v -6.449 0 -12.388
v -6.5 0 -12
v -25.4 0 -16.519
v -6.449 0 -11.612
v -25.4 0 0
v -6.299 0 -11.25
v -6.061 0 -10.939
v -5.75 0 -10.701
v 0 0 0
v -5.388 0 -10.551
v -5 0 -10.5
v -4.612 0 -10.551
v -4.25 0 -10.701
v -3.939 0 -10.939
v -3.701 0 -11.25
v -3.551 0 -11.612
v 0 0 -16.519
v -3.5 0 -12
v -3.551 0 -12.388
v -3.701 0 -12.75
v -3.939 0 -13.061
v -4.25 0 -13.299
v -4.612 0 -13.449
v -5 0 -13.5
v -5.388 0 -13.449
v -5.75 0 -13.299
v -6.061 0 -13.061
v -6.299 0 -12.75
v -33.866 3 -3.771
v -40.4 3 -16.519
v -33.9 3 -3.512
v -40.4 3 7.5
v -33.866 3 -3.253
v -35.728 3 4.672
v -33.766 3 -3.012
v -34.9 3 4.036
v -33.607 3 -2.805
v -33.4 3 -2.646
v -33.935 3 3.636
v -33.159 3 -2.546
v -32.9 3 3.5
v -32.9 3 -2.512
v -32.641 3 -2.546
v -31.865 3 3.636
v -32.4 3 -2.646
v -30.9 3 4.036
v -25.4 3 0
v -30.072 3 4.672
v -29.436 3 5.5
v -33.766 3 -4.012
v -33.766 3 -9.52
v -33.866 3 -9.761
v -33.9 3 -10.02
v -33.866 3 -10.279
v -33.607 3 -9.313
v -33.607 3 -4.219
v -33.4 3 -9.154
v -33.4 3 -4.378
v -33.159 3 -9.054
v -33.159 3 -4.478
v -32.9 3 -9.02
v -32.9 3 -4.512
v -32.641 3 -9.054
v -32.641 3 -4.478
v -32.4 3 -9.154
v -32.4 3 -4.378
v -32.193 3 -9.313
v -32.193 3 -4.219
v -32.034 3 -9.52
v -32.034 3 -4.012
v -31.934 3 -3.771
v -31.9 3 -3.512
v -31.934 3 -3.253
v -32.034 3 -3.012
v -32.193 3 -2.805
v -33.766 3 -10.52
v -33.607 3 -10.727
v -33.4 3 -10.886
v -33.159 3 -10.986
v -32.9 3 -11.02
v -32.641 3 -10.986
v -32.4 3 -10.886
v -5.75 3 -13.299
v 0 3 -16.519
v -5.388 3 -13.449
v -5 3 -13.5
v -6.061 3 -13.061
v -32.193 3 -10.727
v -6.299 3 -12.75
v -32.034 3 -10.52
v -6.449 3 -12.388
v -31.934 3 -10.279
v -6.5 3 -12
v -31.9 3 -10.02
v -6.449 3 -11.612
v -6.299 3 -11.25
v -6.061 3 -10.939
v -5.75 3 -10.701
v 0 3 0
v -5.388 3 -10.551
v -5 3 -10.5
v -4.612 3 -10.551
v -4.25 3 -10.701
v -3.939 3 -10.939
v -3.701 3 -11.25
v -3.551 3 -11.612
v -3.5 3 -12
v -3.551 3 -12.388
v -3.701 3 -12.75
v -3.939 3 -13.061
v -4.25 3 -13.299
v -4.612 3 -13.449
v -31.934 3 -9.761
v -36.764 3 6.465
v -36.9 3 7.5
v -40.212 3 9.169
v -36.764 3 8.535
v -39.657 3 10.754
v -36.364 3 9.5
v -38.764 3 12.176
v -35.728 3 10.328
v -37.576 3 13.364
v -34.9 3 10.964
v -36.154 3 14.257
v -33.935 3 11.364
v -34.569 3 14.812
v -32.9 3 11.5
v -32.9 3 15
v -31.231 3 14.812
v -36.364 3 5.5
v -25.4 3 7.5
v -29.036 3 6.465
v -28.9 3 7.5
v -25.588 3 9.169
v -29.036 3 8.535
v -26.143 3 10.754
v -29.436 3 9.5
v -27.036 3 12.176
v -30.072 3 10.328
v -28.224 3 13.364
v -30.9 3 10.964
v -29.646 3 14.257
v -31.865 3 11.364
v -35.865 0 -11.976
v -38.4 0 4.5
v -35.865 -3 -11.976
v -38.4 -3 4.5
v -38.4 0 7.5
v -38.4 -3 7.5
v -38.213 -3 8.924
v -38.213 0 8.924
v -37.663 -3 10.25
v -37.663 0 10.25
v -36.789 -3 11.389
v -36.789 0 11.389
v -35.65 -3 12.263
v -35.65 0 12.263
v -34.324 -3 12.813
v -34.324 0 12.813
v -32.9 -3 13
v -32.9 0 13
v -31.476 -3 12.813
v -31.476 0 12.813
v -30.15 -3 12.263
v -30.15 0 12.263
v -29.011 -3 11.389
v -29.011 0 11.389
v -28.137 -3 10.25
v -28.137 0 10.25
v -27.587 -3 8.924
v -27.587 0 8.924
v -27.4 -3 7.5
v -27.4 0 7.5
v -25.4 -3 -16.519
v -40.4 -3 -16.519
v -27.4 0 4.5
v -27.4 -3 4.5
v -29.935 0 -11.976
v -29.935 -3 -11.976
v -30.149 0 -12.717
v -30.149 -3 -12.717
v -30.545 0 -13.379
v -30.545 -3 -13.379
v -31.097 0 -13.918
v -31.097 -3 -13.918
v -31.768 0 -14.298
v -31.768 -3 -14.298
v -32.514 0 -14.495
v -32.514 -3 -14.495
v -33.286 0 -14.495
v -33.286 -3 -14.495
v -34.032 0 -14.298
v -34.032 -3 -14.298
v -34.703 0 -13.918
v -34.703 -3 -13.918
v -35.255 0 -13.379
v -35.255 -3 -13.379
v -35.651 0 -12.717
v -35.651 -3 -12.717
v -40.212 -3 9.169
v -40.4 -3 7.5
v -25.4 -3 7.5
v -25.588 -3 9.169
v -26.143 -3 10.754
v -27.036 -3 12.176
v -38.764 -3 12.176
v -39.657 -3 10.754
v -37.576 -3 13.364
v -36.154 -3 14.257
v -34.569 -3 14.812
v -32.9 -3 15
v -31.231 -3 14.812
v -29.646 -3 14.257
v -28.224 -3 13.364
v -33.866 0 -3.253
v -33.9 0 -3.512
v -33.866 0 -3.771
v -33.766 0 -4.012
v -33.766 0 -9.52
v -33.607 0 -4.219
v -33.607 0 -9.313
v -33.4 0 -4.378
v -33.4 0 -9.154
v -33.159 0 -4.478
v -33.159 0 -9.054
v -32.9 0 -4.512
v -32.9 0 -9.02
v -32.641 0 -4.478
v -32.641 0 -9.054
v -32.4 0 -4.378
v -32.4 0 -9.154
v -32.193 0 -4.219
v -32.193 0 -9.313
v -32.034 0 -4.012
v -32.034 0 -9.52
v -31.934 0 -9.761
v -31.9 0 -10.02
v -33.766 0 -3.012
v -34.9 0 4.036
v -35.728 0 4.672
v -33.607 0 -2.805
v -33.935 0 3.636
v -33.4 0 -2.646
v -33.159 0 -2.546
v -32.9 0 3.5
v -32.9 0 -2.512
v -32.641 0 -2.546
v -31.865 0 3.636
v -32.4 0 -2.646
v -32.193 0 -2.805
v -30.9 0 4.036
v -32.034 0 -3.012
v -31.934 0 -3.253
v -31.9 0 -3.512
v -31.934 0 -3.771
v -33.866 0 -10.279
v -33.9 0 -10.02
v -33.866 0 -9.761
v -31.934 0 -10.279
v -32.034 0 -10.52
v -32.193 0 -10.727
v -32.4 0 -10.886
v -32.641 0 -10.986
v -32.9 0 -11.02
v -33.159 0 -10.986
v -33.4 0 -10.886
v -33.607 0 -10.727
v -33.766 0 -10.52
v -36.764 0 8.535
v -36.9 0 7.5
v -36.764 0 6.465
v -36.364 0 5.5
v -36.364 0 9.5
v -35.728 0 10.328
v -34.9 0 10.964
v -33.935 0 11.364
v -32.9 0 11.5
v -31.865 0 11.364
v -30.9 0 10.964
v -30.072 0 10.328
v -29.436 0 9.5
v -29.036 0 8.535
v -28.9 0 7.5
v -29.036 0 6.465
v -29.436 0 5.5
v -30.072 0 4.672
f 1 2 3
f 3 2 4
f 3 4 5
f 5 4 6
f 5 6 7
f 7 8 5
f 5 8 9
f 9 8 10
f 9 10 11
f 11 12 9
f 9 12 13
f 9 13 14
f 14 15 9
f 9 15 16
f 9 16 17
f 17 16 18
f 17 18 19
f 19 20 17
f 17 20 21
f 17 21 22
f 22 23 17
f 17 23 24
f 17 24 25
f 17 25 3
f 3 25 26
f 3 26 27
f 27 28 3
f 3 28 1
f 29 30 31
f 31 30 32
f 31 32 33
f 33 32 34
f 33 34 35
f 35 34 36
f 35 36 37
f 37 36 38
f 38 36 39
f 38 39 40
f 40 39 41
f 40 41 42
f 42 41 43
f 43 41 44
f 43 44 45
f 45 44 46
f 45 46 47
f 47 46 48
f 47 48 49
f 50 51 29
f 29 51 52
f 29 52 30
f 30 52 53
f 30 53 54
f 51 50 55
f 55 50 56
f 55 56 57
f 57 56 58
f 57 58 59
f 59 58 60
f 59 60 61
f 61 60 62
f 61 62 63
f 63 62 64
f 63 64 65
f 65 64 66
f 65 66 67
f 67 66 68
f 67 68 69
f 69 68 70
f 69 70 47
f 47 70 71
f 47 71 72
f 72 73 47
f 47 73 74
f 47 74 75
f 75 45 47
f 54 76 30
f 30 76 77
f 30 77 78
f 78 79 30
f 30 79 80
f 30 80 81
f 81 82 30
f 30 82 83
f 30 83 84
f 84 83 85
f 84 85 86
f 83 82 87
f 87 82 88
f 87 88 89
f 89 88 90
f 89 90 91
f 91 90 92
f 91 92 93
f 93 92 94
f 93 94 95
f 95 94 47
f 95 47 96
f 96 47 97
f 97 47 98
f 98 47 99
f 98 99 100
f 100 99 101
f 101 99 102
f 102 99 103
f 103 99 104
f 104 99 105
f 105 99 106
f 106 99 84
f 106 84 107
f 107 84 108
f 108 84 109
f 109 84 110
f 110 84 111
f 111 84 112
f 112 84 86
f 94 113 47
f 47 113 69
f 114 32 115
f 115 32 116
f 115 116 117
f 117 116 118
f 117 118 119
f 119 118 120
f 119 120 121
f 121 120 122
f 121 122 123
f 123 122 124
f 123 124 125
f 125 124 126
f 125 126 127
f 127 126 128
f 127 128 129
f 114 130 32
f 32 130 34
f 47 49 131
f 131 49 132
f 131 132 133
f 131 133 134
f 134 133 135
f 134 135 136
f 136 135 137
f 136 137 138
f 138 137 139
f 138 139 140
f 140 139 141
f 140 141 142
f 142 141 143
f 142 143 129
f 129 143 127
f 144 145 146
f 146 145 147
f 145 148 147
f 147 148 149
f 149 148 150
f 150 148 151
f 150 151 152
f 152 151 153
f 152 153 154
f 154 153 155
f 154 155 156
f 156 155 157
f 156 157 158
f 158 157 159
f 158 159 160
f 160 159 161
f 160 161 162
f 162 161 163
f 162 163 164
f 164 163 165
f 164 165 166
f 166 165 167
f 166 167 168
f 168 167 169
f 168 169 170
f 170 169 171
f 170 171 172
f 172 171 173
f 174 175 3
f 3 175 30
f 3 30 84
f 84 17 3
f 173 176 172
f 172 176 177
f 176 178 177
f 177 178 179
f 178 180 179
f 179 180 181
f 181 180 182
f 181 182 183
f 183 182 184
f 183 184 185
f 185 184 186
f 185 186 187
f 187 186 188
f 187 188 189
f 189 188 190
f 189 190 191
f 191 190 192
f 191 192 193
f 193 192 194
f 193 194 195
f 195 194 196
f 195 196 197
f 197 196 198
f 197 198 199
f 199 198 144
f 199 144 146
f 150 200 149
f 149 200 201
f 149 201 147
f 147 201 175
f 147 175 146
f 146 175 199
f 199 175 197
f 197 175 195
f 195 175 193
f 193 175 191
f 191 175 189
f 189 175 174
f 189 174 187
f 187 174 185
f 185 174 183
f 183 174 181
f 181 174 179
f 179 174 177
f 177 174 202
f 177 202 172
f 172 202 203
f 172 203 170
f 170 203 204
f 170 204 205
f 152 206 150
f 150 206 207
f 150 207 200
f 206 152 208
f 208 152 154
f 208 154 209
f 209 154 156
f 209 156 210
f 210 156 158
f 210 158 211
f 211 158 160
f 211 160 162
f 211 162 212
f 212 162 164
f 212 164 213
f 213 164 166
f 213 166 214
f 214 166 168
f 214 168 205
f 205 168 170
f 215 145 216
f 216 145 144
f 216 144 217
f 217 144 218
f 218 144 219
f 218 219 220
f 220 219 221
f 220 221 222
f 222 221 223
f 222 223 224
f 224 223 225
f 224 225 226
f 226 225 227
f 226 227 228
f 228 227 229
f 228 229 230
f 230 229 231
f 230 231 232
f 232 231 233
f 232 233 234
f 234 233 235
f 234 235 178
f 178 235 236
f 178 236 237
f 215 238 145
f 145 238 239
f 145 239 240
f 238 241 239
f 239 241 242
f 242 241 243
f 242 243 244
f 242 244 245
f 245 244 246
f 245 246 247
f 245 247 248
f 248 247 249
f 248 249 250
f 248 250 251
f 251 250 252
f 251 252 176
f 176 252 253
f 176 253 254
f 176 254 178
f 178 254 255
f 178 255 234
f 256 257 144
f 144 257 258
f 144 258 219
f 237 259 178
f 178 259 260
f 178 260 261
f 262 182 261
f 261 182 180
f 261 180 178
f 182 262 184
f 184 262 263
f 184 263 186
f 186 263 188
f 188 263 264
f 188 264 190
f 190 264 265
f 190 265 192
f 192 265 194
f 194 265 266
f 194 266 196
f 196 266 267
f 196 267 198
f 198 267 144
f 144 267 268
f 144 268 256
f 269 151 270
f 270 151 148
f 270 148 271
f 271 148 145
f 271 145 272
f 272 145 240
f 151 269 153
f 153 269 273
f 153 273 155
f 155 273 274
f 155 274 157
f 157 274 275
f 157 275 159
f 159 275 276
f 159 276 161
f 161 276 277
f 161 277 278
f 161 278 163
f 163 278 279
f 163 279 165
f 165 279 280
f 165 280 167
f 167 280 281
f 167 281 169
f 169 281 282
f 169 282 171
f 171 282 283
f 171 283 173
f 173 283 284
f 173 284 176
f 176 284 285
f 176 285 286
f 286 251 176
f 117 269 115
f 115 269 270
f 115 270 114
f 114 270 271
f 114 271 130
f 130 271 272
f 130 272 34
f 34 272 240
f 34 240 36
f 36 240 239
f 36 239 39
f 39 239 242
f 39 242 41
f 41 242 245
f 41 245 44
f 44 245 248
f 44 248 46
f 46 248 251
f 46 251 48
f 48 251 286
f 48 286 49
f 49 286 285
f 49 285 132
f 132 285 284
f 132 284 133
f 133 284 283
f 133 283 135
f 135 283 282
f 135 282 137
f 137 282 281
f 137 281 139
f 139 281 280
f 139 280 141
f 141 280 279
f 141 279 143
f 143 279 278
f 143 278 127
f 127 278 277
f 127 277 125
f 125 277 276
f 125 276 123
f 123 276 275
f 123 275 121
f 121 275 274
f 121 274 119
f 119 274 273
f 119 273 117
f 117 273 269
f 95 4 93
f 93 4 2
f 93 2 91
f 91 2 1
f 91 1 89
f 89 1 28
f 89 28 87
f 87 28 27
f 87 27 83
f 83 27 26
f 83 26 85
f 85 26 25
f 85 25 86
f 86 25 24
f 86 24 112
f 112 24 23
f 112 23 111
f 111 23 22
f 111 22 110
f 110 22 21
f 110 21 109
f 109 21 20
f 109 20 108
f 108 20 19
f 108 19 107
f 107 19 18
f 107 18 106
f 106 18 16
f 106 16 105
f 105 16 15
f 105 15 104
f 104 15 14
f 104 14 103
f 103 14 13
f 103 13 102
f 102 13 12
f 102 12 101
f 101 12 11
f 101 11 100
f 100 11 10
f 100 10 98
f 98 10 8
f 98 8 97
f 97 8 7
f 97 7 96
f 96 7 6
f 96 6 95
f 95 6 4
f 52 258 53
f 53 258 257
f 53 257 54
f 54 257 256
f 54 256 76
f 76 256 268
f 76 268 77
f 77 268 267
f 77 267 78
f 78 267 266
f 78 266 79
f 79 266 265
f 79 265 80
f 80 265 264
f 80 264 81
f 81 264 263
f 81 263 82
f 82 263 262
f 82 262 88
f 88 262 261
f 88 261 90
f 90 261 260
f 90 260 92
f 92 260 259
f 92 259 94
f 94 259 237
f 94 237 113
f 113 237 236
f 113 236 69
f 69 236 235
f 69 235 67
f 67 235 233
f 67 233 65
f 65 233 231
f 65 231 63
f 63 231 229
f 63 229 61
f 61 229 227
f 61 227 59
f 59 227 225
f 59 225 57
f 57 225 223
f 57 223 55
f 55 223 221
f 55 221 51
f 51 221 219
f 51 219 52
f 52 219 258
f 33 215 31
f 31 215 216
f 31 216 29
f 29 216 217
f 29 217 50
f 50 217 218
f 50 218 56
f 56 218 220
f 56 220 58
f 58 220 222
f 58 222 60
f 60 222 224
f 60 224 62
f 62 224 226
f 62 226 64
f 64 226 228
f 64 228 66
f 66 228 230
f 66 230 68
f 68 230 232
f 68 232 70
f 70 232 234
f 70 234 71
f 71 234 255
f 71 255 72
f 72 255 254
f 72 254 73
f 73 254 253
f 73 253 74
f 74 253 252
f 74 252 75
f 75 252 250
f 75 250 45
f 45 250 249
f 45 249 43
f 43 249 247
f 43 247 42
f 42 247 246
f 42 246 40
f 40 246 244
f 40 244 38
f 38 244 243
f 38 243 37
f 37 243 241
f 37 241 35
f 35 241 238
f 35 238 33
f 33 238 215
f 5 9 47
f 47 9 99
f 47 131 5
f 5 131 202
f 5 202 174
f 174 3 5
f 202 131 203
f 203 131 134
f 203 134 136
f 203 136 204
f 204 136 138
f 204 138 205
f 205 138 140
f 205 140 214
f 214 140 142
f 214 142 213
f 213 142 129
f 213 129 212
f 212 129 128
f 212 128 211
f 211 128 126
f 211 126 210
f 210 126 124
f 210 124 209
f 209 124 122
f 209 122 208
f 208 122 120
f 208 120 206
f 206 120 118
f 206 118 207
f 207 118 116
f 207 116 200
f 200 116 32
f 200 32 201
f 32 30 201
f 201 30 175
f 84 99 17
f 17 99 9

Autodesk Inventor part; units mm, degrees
ref_plane "YZ Plane" through (0, 0, 0) normal (1, 0, 0) x (0, 1, 0)
ref_plane "XZ Plane" through (0, 0, 0) normal (0, 1, 0) x (-1, 0, 0)
ref_plane "XY Plane" through (0, 0, 0) normal (0, 0, 1) x (1, 0, 0)
sketch "Sketch3" plane through (0, 0, 0) normal (0, 1, 0) x (-1, 0, 0)
  line L0 (0, 0) -> (0, -60)
  line L1 (0, 0) -> (60, 0) construction
  line L2 (0, -60) -> (12.519, -60)
  line L3 (0, 0) -> (25.4, 0)
  line L4 (25.4, 0) -> (25.4, 7.5)
  arc A0 (40.4, 7.5) -> (25.4, 7.5) centre (32.9, 7.5) ccw
  line L5 (40.4, 7.5) -> (40.4, -16.519)
  line L6 (40.4, -16.519) -> (12.519, -60)
  line L7 (0, -30) -> (5, -30)
  line L8 (5, -60) -> (5, -48)
  line L9 (5, 0) -> (5, -12)
  circle A1 centre (5, -12) radius 1.5
  circle A2 centre (5, -48) radius 1.5
  circle A3 centre (32.9, 7.5) radius 4
  line L10 (32.9, 7.5) -> (32.9, -3.512)
  line L11 (32.9, -3.512) -> (32.9, -10.02)
  circle A4 centre (32.9, -3.512) radius 1
  circle A5 centre (32.9, -10.02) radius 1
  dimension "d6" = 60
  dimension "d7" = 90
  dimension "d8" = 12.519
  dimension "d9" = 25.4
  dimension "d10" = 7.5
  dimension "d11" = 15
  dimension "d13" = 24.019
  dimension "d18" = 5
  dimension "d19" = 12
  dimension "d20" = 12
  dimension "d21" = 3
  dimension "d22" = 3
  dimension "d25" = 8
  dimension "d26" = 11.012
  dimension "d27" = 6.508
  dimension "d28" = 2
  dimension "d29" = 2
extrude "Extrusion1" add sketch "Sketch3" along normal blind 3
sketch "Sketch6" plane through (0, 3, 0) normal (0, 1, 0) x (1, 0, 0)
  circle A0 centre (-32.9, -7.5) radius 4 projected
  circle A1 centre (-5, 48) radius 1.5 projected
  circle A2 centre (-5, 12) radius 1.5 projected
  circle A3 centre (-32.9, 10.02) radius 1 projected
  circle A4 centre (-32.9, 3.512) radius 1 projected
  line L0 (0, 0) -> (0, 60) projected
  line L1 (0, 60) -> (-12.519, 60) projected
  line L2 (-12.519, 60) -> (-40.4, 16.519) projected
  line L3 (-40.4, 16.519) -> (-40.4, -7.5) projected
  arc A5 (-40.4, -7.5) -> (-25.4, -7.5) centre (-32.9, -7.5) ccw projected
  line L4 (-25.4, -7.5) -> (-25.4, 0) projected
  line L5 (-25.4, 0) -> (0, 0) projected
  line L6 (-40.4, 16.519) -> (-25.4, 16.519)
  line L7 (-25.4, -7.5) -> (-25.4, 0) projected
  line L8 (-25.4, 16.519) -> (-25.4, 0)
  circle A6 centre (-32.9, -7.5) radius 5.5
  line L9 (-32.9, 10.02) -> (-32.9, 11.52)
  circle A7 centre (-32.9, 11.52) radius 3
  line L10 (-38.4, -7.5) -> (-38.4, -4.5)
  line L11 (-27.4, -7.5) -> (-27.4, -4.5)
  line L12 (-27.4, -4.5) -> (-29.9349, 11.9762)
  line L13 (-38.4, -4.5) -> (-35.8651, 11.9762)
  point P0 (0, 0)
  dimension "d31" = 11
  dimension "d32" = 1.5
  dimension "d33" = 6
  dimension "d34" = 3
extrude "Extrusion3" add sketch "Sketch6" against normal blind 6 contours L4 A5 L3 L6 L8
sketch "Sketch7" plane through (0, 3, 0) normal (0, 1, 0) x (1, 0, 0)
  line L0 (-40.4, 16.519) -> (-40.4, -7.5) projected
  line L1 (0, 60) -> (-12.519, 60) projected
  line L2 (0, 0) -> (0, 60) projected
  line L3 (-40.4, 60) -> (0, 60)
  line L4 (0, 60) -> (0, 16.519)
  line L5 (0, 16.519) -> (-40.4, 16.519)
  line L6 (-40.4, 16.519) -> (-40.4, 60)
extrude "Extrusion4" cut sketch "Sketch7" against normal blind 25.4
properties part number "exShort"
